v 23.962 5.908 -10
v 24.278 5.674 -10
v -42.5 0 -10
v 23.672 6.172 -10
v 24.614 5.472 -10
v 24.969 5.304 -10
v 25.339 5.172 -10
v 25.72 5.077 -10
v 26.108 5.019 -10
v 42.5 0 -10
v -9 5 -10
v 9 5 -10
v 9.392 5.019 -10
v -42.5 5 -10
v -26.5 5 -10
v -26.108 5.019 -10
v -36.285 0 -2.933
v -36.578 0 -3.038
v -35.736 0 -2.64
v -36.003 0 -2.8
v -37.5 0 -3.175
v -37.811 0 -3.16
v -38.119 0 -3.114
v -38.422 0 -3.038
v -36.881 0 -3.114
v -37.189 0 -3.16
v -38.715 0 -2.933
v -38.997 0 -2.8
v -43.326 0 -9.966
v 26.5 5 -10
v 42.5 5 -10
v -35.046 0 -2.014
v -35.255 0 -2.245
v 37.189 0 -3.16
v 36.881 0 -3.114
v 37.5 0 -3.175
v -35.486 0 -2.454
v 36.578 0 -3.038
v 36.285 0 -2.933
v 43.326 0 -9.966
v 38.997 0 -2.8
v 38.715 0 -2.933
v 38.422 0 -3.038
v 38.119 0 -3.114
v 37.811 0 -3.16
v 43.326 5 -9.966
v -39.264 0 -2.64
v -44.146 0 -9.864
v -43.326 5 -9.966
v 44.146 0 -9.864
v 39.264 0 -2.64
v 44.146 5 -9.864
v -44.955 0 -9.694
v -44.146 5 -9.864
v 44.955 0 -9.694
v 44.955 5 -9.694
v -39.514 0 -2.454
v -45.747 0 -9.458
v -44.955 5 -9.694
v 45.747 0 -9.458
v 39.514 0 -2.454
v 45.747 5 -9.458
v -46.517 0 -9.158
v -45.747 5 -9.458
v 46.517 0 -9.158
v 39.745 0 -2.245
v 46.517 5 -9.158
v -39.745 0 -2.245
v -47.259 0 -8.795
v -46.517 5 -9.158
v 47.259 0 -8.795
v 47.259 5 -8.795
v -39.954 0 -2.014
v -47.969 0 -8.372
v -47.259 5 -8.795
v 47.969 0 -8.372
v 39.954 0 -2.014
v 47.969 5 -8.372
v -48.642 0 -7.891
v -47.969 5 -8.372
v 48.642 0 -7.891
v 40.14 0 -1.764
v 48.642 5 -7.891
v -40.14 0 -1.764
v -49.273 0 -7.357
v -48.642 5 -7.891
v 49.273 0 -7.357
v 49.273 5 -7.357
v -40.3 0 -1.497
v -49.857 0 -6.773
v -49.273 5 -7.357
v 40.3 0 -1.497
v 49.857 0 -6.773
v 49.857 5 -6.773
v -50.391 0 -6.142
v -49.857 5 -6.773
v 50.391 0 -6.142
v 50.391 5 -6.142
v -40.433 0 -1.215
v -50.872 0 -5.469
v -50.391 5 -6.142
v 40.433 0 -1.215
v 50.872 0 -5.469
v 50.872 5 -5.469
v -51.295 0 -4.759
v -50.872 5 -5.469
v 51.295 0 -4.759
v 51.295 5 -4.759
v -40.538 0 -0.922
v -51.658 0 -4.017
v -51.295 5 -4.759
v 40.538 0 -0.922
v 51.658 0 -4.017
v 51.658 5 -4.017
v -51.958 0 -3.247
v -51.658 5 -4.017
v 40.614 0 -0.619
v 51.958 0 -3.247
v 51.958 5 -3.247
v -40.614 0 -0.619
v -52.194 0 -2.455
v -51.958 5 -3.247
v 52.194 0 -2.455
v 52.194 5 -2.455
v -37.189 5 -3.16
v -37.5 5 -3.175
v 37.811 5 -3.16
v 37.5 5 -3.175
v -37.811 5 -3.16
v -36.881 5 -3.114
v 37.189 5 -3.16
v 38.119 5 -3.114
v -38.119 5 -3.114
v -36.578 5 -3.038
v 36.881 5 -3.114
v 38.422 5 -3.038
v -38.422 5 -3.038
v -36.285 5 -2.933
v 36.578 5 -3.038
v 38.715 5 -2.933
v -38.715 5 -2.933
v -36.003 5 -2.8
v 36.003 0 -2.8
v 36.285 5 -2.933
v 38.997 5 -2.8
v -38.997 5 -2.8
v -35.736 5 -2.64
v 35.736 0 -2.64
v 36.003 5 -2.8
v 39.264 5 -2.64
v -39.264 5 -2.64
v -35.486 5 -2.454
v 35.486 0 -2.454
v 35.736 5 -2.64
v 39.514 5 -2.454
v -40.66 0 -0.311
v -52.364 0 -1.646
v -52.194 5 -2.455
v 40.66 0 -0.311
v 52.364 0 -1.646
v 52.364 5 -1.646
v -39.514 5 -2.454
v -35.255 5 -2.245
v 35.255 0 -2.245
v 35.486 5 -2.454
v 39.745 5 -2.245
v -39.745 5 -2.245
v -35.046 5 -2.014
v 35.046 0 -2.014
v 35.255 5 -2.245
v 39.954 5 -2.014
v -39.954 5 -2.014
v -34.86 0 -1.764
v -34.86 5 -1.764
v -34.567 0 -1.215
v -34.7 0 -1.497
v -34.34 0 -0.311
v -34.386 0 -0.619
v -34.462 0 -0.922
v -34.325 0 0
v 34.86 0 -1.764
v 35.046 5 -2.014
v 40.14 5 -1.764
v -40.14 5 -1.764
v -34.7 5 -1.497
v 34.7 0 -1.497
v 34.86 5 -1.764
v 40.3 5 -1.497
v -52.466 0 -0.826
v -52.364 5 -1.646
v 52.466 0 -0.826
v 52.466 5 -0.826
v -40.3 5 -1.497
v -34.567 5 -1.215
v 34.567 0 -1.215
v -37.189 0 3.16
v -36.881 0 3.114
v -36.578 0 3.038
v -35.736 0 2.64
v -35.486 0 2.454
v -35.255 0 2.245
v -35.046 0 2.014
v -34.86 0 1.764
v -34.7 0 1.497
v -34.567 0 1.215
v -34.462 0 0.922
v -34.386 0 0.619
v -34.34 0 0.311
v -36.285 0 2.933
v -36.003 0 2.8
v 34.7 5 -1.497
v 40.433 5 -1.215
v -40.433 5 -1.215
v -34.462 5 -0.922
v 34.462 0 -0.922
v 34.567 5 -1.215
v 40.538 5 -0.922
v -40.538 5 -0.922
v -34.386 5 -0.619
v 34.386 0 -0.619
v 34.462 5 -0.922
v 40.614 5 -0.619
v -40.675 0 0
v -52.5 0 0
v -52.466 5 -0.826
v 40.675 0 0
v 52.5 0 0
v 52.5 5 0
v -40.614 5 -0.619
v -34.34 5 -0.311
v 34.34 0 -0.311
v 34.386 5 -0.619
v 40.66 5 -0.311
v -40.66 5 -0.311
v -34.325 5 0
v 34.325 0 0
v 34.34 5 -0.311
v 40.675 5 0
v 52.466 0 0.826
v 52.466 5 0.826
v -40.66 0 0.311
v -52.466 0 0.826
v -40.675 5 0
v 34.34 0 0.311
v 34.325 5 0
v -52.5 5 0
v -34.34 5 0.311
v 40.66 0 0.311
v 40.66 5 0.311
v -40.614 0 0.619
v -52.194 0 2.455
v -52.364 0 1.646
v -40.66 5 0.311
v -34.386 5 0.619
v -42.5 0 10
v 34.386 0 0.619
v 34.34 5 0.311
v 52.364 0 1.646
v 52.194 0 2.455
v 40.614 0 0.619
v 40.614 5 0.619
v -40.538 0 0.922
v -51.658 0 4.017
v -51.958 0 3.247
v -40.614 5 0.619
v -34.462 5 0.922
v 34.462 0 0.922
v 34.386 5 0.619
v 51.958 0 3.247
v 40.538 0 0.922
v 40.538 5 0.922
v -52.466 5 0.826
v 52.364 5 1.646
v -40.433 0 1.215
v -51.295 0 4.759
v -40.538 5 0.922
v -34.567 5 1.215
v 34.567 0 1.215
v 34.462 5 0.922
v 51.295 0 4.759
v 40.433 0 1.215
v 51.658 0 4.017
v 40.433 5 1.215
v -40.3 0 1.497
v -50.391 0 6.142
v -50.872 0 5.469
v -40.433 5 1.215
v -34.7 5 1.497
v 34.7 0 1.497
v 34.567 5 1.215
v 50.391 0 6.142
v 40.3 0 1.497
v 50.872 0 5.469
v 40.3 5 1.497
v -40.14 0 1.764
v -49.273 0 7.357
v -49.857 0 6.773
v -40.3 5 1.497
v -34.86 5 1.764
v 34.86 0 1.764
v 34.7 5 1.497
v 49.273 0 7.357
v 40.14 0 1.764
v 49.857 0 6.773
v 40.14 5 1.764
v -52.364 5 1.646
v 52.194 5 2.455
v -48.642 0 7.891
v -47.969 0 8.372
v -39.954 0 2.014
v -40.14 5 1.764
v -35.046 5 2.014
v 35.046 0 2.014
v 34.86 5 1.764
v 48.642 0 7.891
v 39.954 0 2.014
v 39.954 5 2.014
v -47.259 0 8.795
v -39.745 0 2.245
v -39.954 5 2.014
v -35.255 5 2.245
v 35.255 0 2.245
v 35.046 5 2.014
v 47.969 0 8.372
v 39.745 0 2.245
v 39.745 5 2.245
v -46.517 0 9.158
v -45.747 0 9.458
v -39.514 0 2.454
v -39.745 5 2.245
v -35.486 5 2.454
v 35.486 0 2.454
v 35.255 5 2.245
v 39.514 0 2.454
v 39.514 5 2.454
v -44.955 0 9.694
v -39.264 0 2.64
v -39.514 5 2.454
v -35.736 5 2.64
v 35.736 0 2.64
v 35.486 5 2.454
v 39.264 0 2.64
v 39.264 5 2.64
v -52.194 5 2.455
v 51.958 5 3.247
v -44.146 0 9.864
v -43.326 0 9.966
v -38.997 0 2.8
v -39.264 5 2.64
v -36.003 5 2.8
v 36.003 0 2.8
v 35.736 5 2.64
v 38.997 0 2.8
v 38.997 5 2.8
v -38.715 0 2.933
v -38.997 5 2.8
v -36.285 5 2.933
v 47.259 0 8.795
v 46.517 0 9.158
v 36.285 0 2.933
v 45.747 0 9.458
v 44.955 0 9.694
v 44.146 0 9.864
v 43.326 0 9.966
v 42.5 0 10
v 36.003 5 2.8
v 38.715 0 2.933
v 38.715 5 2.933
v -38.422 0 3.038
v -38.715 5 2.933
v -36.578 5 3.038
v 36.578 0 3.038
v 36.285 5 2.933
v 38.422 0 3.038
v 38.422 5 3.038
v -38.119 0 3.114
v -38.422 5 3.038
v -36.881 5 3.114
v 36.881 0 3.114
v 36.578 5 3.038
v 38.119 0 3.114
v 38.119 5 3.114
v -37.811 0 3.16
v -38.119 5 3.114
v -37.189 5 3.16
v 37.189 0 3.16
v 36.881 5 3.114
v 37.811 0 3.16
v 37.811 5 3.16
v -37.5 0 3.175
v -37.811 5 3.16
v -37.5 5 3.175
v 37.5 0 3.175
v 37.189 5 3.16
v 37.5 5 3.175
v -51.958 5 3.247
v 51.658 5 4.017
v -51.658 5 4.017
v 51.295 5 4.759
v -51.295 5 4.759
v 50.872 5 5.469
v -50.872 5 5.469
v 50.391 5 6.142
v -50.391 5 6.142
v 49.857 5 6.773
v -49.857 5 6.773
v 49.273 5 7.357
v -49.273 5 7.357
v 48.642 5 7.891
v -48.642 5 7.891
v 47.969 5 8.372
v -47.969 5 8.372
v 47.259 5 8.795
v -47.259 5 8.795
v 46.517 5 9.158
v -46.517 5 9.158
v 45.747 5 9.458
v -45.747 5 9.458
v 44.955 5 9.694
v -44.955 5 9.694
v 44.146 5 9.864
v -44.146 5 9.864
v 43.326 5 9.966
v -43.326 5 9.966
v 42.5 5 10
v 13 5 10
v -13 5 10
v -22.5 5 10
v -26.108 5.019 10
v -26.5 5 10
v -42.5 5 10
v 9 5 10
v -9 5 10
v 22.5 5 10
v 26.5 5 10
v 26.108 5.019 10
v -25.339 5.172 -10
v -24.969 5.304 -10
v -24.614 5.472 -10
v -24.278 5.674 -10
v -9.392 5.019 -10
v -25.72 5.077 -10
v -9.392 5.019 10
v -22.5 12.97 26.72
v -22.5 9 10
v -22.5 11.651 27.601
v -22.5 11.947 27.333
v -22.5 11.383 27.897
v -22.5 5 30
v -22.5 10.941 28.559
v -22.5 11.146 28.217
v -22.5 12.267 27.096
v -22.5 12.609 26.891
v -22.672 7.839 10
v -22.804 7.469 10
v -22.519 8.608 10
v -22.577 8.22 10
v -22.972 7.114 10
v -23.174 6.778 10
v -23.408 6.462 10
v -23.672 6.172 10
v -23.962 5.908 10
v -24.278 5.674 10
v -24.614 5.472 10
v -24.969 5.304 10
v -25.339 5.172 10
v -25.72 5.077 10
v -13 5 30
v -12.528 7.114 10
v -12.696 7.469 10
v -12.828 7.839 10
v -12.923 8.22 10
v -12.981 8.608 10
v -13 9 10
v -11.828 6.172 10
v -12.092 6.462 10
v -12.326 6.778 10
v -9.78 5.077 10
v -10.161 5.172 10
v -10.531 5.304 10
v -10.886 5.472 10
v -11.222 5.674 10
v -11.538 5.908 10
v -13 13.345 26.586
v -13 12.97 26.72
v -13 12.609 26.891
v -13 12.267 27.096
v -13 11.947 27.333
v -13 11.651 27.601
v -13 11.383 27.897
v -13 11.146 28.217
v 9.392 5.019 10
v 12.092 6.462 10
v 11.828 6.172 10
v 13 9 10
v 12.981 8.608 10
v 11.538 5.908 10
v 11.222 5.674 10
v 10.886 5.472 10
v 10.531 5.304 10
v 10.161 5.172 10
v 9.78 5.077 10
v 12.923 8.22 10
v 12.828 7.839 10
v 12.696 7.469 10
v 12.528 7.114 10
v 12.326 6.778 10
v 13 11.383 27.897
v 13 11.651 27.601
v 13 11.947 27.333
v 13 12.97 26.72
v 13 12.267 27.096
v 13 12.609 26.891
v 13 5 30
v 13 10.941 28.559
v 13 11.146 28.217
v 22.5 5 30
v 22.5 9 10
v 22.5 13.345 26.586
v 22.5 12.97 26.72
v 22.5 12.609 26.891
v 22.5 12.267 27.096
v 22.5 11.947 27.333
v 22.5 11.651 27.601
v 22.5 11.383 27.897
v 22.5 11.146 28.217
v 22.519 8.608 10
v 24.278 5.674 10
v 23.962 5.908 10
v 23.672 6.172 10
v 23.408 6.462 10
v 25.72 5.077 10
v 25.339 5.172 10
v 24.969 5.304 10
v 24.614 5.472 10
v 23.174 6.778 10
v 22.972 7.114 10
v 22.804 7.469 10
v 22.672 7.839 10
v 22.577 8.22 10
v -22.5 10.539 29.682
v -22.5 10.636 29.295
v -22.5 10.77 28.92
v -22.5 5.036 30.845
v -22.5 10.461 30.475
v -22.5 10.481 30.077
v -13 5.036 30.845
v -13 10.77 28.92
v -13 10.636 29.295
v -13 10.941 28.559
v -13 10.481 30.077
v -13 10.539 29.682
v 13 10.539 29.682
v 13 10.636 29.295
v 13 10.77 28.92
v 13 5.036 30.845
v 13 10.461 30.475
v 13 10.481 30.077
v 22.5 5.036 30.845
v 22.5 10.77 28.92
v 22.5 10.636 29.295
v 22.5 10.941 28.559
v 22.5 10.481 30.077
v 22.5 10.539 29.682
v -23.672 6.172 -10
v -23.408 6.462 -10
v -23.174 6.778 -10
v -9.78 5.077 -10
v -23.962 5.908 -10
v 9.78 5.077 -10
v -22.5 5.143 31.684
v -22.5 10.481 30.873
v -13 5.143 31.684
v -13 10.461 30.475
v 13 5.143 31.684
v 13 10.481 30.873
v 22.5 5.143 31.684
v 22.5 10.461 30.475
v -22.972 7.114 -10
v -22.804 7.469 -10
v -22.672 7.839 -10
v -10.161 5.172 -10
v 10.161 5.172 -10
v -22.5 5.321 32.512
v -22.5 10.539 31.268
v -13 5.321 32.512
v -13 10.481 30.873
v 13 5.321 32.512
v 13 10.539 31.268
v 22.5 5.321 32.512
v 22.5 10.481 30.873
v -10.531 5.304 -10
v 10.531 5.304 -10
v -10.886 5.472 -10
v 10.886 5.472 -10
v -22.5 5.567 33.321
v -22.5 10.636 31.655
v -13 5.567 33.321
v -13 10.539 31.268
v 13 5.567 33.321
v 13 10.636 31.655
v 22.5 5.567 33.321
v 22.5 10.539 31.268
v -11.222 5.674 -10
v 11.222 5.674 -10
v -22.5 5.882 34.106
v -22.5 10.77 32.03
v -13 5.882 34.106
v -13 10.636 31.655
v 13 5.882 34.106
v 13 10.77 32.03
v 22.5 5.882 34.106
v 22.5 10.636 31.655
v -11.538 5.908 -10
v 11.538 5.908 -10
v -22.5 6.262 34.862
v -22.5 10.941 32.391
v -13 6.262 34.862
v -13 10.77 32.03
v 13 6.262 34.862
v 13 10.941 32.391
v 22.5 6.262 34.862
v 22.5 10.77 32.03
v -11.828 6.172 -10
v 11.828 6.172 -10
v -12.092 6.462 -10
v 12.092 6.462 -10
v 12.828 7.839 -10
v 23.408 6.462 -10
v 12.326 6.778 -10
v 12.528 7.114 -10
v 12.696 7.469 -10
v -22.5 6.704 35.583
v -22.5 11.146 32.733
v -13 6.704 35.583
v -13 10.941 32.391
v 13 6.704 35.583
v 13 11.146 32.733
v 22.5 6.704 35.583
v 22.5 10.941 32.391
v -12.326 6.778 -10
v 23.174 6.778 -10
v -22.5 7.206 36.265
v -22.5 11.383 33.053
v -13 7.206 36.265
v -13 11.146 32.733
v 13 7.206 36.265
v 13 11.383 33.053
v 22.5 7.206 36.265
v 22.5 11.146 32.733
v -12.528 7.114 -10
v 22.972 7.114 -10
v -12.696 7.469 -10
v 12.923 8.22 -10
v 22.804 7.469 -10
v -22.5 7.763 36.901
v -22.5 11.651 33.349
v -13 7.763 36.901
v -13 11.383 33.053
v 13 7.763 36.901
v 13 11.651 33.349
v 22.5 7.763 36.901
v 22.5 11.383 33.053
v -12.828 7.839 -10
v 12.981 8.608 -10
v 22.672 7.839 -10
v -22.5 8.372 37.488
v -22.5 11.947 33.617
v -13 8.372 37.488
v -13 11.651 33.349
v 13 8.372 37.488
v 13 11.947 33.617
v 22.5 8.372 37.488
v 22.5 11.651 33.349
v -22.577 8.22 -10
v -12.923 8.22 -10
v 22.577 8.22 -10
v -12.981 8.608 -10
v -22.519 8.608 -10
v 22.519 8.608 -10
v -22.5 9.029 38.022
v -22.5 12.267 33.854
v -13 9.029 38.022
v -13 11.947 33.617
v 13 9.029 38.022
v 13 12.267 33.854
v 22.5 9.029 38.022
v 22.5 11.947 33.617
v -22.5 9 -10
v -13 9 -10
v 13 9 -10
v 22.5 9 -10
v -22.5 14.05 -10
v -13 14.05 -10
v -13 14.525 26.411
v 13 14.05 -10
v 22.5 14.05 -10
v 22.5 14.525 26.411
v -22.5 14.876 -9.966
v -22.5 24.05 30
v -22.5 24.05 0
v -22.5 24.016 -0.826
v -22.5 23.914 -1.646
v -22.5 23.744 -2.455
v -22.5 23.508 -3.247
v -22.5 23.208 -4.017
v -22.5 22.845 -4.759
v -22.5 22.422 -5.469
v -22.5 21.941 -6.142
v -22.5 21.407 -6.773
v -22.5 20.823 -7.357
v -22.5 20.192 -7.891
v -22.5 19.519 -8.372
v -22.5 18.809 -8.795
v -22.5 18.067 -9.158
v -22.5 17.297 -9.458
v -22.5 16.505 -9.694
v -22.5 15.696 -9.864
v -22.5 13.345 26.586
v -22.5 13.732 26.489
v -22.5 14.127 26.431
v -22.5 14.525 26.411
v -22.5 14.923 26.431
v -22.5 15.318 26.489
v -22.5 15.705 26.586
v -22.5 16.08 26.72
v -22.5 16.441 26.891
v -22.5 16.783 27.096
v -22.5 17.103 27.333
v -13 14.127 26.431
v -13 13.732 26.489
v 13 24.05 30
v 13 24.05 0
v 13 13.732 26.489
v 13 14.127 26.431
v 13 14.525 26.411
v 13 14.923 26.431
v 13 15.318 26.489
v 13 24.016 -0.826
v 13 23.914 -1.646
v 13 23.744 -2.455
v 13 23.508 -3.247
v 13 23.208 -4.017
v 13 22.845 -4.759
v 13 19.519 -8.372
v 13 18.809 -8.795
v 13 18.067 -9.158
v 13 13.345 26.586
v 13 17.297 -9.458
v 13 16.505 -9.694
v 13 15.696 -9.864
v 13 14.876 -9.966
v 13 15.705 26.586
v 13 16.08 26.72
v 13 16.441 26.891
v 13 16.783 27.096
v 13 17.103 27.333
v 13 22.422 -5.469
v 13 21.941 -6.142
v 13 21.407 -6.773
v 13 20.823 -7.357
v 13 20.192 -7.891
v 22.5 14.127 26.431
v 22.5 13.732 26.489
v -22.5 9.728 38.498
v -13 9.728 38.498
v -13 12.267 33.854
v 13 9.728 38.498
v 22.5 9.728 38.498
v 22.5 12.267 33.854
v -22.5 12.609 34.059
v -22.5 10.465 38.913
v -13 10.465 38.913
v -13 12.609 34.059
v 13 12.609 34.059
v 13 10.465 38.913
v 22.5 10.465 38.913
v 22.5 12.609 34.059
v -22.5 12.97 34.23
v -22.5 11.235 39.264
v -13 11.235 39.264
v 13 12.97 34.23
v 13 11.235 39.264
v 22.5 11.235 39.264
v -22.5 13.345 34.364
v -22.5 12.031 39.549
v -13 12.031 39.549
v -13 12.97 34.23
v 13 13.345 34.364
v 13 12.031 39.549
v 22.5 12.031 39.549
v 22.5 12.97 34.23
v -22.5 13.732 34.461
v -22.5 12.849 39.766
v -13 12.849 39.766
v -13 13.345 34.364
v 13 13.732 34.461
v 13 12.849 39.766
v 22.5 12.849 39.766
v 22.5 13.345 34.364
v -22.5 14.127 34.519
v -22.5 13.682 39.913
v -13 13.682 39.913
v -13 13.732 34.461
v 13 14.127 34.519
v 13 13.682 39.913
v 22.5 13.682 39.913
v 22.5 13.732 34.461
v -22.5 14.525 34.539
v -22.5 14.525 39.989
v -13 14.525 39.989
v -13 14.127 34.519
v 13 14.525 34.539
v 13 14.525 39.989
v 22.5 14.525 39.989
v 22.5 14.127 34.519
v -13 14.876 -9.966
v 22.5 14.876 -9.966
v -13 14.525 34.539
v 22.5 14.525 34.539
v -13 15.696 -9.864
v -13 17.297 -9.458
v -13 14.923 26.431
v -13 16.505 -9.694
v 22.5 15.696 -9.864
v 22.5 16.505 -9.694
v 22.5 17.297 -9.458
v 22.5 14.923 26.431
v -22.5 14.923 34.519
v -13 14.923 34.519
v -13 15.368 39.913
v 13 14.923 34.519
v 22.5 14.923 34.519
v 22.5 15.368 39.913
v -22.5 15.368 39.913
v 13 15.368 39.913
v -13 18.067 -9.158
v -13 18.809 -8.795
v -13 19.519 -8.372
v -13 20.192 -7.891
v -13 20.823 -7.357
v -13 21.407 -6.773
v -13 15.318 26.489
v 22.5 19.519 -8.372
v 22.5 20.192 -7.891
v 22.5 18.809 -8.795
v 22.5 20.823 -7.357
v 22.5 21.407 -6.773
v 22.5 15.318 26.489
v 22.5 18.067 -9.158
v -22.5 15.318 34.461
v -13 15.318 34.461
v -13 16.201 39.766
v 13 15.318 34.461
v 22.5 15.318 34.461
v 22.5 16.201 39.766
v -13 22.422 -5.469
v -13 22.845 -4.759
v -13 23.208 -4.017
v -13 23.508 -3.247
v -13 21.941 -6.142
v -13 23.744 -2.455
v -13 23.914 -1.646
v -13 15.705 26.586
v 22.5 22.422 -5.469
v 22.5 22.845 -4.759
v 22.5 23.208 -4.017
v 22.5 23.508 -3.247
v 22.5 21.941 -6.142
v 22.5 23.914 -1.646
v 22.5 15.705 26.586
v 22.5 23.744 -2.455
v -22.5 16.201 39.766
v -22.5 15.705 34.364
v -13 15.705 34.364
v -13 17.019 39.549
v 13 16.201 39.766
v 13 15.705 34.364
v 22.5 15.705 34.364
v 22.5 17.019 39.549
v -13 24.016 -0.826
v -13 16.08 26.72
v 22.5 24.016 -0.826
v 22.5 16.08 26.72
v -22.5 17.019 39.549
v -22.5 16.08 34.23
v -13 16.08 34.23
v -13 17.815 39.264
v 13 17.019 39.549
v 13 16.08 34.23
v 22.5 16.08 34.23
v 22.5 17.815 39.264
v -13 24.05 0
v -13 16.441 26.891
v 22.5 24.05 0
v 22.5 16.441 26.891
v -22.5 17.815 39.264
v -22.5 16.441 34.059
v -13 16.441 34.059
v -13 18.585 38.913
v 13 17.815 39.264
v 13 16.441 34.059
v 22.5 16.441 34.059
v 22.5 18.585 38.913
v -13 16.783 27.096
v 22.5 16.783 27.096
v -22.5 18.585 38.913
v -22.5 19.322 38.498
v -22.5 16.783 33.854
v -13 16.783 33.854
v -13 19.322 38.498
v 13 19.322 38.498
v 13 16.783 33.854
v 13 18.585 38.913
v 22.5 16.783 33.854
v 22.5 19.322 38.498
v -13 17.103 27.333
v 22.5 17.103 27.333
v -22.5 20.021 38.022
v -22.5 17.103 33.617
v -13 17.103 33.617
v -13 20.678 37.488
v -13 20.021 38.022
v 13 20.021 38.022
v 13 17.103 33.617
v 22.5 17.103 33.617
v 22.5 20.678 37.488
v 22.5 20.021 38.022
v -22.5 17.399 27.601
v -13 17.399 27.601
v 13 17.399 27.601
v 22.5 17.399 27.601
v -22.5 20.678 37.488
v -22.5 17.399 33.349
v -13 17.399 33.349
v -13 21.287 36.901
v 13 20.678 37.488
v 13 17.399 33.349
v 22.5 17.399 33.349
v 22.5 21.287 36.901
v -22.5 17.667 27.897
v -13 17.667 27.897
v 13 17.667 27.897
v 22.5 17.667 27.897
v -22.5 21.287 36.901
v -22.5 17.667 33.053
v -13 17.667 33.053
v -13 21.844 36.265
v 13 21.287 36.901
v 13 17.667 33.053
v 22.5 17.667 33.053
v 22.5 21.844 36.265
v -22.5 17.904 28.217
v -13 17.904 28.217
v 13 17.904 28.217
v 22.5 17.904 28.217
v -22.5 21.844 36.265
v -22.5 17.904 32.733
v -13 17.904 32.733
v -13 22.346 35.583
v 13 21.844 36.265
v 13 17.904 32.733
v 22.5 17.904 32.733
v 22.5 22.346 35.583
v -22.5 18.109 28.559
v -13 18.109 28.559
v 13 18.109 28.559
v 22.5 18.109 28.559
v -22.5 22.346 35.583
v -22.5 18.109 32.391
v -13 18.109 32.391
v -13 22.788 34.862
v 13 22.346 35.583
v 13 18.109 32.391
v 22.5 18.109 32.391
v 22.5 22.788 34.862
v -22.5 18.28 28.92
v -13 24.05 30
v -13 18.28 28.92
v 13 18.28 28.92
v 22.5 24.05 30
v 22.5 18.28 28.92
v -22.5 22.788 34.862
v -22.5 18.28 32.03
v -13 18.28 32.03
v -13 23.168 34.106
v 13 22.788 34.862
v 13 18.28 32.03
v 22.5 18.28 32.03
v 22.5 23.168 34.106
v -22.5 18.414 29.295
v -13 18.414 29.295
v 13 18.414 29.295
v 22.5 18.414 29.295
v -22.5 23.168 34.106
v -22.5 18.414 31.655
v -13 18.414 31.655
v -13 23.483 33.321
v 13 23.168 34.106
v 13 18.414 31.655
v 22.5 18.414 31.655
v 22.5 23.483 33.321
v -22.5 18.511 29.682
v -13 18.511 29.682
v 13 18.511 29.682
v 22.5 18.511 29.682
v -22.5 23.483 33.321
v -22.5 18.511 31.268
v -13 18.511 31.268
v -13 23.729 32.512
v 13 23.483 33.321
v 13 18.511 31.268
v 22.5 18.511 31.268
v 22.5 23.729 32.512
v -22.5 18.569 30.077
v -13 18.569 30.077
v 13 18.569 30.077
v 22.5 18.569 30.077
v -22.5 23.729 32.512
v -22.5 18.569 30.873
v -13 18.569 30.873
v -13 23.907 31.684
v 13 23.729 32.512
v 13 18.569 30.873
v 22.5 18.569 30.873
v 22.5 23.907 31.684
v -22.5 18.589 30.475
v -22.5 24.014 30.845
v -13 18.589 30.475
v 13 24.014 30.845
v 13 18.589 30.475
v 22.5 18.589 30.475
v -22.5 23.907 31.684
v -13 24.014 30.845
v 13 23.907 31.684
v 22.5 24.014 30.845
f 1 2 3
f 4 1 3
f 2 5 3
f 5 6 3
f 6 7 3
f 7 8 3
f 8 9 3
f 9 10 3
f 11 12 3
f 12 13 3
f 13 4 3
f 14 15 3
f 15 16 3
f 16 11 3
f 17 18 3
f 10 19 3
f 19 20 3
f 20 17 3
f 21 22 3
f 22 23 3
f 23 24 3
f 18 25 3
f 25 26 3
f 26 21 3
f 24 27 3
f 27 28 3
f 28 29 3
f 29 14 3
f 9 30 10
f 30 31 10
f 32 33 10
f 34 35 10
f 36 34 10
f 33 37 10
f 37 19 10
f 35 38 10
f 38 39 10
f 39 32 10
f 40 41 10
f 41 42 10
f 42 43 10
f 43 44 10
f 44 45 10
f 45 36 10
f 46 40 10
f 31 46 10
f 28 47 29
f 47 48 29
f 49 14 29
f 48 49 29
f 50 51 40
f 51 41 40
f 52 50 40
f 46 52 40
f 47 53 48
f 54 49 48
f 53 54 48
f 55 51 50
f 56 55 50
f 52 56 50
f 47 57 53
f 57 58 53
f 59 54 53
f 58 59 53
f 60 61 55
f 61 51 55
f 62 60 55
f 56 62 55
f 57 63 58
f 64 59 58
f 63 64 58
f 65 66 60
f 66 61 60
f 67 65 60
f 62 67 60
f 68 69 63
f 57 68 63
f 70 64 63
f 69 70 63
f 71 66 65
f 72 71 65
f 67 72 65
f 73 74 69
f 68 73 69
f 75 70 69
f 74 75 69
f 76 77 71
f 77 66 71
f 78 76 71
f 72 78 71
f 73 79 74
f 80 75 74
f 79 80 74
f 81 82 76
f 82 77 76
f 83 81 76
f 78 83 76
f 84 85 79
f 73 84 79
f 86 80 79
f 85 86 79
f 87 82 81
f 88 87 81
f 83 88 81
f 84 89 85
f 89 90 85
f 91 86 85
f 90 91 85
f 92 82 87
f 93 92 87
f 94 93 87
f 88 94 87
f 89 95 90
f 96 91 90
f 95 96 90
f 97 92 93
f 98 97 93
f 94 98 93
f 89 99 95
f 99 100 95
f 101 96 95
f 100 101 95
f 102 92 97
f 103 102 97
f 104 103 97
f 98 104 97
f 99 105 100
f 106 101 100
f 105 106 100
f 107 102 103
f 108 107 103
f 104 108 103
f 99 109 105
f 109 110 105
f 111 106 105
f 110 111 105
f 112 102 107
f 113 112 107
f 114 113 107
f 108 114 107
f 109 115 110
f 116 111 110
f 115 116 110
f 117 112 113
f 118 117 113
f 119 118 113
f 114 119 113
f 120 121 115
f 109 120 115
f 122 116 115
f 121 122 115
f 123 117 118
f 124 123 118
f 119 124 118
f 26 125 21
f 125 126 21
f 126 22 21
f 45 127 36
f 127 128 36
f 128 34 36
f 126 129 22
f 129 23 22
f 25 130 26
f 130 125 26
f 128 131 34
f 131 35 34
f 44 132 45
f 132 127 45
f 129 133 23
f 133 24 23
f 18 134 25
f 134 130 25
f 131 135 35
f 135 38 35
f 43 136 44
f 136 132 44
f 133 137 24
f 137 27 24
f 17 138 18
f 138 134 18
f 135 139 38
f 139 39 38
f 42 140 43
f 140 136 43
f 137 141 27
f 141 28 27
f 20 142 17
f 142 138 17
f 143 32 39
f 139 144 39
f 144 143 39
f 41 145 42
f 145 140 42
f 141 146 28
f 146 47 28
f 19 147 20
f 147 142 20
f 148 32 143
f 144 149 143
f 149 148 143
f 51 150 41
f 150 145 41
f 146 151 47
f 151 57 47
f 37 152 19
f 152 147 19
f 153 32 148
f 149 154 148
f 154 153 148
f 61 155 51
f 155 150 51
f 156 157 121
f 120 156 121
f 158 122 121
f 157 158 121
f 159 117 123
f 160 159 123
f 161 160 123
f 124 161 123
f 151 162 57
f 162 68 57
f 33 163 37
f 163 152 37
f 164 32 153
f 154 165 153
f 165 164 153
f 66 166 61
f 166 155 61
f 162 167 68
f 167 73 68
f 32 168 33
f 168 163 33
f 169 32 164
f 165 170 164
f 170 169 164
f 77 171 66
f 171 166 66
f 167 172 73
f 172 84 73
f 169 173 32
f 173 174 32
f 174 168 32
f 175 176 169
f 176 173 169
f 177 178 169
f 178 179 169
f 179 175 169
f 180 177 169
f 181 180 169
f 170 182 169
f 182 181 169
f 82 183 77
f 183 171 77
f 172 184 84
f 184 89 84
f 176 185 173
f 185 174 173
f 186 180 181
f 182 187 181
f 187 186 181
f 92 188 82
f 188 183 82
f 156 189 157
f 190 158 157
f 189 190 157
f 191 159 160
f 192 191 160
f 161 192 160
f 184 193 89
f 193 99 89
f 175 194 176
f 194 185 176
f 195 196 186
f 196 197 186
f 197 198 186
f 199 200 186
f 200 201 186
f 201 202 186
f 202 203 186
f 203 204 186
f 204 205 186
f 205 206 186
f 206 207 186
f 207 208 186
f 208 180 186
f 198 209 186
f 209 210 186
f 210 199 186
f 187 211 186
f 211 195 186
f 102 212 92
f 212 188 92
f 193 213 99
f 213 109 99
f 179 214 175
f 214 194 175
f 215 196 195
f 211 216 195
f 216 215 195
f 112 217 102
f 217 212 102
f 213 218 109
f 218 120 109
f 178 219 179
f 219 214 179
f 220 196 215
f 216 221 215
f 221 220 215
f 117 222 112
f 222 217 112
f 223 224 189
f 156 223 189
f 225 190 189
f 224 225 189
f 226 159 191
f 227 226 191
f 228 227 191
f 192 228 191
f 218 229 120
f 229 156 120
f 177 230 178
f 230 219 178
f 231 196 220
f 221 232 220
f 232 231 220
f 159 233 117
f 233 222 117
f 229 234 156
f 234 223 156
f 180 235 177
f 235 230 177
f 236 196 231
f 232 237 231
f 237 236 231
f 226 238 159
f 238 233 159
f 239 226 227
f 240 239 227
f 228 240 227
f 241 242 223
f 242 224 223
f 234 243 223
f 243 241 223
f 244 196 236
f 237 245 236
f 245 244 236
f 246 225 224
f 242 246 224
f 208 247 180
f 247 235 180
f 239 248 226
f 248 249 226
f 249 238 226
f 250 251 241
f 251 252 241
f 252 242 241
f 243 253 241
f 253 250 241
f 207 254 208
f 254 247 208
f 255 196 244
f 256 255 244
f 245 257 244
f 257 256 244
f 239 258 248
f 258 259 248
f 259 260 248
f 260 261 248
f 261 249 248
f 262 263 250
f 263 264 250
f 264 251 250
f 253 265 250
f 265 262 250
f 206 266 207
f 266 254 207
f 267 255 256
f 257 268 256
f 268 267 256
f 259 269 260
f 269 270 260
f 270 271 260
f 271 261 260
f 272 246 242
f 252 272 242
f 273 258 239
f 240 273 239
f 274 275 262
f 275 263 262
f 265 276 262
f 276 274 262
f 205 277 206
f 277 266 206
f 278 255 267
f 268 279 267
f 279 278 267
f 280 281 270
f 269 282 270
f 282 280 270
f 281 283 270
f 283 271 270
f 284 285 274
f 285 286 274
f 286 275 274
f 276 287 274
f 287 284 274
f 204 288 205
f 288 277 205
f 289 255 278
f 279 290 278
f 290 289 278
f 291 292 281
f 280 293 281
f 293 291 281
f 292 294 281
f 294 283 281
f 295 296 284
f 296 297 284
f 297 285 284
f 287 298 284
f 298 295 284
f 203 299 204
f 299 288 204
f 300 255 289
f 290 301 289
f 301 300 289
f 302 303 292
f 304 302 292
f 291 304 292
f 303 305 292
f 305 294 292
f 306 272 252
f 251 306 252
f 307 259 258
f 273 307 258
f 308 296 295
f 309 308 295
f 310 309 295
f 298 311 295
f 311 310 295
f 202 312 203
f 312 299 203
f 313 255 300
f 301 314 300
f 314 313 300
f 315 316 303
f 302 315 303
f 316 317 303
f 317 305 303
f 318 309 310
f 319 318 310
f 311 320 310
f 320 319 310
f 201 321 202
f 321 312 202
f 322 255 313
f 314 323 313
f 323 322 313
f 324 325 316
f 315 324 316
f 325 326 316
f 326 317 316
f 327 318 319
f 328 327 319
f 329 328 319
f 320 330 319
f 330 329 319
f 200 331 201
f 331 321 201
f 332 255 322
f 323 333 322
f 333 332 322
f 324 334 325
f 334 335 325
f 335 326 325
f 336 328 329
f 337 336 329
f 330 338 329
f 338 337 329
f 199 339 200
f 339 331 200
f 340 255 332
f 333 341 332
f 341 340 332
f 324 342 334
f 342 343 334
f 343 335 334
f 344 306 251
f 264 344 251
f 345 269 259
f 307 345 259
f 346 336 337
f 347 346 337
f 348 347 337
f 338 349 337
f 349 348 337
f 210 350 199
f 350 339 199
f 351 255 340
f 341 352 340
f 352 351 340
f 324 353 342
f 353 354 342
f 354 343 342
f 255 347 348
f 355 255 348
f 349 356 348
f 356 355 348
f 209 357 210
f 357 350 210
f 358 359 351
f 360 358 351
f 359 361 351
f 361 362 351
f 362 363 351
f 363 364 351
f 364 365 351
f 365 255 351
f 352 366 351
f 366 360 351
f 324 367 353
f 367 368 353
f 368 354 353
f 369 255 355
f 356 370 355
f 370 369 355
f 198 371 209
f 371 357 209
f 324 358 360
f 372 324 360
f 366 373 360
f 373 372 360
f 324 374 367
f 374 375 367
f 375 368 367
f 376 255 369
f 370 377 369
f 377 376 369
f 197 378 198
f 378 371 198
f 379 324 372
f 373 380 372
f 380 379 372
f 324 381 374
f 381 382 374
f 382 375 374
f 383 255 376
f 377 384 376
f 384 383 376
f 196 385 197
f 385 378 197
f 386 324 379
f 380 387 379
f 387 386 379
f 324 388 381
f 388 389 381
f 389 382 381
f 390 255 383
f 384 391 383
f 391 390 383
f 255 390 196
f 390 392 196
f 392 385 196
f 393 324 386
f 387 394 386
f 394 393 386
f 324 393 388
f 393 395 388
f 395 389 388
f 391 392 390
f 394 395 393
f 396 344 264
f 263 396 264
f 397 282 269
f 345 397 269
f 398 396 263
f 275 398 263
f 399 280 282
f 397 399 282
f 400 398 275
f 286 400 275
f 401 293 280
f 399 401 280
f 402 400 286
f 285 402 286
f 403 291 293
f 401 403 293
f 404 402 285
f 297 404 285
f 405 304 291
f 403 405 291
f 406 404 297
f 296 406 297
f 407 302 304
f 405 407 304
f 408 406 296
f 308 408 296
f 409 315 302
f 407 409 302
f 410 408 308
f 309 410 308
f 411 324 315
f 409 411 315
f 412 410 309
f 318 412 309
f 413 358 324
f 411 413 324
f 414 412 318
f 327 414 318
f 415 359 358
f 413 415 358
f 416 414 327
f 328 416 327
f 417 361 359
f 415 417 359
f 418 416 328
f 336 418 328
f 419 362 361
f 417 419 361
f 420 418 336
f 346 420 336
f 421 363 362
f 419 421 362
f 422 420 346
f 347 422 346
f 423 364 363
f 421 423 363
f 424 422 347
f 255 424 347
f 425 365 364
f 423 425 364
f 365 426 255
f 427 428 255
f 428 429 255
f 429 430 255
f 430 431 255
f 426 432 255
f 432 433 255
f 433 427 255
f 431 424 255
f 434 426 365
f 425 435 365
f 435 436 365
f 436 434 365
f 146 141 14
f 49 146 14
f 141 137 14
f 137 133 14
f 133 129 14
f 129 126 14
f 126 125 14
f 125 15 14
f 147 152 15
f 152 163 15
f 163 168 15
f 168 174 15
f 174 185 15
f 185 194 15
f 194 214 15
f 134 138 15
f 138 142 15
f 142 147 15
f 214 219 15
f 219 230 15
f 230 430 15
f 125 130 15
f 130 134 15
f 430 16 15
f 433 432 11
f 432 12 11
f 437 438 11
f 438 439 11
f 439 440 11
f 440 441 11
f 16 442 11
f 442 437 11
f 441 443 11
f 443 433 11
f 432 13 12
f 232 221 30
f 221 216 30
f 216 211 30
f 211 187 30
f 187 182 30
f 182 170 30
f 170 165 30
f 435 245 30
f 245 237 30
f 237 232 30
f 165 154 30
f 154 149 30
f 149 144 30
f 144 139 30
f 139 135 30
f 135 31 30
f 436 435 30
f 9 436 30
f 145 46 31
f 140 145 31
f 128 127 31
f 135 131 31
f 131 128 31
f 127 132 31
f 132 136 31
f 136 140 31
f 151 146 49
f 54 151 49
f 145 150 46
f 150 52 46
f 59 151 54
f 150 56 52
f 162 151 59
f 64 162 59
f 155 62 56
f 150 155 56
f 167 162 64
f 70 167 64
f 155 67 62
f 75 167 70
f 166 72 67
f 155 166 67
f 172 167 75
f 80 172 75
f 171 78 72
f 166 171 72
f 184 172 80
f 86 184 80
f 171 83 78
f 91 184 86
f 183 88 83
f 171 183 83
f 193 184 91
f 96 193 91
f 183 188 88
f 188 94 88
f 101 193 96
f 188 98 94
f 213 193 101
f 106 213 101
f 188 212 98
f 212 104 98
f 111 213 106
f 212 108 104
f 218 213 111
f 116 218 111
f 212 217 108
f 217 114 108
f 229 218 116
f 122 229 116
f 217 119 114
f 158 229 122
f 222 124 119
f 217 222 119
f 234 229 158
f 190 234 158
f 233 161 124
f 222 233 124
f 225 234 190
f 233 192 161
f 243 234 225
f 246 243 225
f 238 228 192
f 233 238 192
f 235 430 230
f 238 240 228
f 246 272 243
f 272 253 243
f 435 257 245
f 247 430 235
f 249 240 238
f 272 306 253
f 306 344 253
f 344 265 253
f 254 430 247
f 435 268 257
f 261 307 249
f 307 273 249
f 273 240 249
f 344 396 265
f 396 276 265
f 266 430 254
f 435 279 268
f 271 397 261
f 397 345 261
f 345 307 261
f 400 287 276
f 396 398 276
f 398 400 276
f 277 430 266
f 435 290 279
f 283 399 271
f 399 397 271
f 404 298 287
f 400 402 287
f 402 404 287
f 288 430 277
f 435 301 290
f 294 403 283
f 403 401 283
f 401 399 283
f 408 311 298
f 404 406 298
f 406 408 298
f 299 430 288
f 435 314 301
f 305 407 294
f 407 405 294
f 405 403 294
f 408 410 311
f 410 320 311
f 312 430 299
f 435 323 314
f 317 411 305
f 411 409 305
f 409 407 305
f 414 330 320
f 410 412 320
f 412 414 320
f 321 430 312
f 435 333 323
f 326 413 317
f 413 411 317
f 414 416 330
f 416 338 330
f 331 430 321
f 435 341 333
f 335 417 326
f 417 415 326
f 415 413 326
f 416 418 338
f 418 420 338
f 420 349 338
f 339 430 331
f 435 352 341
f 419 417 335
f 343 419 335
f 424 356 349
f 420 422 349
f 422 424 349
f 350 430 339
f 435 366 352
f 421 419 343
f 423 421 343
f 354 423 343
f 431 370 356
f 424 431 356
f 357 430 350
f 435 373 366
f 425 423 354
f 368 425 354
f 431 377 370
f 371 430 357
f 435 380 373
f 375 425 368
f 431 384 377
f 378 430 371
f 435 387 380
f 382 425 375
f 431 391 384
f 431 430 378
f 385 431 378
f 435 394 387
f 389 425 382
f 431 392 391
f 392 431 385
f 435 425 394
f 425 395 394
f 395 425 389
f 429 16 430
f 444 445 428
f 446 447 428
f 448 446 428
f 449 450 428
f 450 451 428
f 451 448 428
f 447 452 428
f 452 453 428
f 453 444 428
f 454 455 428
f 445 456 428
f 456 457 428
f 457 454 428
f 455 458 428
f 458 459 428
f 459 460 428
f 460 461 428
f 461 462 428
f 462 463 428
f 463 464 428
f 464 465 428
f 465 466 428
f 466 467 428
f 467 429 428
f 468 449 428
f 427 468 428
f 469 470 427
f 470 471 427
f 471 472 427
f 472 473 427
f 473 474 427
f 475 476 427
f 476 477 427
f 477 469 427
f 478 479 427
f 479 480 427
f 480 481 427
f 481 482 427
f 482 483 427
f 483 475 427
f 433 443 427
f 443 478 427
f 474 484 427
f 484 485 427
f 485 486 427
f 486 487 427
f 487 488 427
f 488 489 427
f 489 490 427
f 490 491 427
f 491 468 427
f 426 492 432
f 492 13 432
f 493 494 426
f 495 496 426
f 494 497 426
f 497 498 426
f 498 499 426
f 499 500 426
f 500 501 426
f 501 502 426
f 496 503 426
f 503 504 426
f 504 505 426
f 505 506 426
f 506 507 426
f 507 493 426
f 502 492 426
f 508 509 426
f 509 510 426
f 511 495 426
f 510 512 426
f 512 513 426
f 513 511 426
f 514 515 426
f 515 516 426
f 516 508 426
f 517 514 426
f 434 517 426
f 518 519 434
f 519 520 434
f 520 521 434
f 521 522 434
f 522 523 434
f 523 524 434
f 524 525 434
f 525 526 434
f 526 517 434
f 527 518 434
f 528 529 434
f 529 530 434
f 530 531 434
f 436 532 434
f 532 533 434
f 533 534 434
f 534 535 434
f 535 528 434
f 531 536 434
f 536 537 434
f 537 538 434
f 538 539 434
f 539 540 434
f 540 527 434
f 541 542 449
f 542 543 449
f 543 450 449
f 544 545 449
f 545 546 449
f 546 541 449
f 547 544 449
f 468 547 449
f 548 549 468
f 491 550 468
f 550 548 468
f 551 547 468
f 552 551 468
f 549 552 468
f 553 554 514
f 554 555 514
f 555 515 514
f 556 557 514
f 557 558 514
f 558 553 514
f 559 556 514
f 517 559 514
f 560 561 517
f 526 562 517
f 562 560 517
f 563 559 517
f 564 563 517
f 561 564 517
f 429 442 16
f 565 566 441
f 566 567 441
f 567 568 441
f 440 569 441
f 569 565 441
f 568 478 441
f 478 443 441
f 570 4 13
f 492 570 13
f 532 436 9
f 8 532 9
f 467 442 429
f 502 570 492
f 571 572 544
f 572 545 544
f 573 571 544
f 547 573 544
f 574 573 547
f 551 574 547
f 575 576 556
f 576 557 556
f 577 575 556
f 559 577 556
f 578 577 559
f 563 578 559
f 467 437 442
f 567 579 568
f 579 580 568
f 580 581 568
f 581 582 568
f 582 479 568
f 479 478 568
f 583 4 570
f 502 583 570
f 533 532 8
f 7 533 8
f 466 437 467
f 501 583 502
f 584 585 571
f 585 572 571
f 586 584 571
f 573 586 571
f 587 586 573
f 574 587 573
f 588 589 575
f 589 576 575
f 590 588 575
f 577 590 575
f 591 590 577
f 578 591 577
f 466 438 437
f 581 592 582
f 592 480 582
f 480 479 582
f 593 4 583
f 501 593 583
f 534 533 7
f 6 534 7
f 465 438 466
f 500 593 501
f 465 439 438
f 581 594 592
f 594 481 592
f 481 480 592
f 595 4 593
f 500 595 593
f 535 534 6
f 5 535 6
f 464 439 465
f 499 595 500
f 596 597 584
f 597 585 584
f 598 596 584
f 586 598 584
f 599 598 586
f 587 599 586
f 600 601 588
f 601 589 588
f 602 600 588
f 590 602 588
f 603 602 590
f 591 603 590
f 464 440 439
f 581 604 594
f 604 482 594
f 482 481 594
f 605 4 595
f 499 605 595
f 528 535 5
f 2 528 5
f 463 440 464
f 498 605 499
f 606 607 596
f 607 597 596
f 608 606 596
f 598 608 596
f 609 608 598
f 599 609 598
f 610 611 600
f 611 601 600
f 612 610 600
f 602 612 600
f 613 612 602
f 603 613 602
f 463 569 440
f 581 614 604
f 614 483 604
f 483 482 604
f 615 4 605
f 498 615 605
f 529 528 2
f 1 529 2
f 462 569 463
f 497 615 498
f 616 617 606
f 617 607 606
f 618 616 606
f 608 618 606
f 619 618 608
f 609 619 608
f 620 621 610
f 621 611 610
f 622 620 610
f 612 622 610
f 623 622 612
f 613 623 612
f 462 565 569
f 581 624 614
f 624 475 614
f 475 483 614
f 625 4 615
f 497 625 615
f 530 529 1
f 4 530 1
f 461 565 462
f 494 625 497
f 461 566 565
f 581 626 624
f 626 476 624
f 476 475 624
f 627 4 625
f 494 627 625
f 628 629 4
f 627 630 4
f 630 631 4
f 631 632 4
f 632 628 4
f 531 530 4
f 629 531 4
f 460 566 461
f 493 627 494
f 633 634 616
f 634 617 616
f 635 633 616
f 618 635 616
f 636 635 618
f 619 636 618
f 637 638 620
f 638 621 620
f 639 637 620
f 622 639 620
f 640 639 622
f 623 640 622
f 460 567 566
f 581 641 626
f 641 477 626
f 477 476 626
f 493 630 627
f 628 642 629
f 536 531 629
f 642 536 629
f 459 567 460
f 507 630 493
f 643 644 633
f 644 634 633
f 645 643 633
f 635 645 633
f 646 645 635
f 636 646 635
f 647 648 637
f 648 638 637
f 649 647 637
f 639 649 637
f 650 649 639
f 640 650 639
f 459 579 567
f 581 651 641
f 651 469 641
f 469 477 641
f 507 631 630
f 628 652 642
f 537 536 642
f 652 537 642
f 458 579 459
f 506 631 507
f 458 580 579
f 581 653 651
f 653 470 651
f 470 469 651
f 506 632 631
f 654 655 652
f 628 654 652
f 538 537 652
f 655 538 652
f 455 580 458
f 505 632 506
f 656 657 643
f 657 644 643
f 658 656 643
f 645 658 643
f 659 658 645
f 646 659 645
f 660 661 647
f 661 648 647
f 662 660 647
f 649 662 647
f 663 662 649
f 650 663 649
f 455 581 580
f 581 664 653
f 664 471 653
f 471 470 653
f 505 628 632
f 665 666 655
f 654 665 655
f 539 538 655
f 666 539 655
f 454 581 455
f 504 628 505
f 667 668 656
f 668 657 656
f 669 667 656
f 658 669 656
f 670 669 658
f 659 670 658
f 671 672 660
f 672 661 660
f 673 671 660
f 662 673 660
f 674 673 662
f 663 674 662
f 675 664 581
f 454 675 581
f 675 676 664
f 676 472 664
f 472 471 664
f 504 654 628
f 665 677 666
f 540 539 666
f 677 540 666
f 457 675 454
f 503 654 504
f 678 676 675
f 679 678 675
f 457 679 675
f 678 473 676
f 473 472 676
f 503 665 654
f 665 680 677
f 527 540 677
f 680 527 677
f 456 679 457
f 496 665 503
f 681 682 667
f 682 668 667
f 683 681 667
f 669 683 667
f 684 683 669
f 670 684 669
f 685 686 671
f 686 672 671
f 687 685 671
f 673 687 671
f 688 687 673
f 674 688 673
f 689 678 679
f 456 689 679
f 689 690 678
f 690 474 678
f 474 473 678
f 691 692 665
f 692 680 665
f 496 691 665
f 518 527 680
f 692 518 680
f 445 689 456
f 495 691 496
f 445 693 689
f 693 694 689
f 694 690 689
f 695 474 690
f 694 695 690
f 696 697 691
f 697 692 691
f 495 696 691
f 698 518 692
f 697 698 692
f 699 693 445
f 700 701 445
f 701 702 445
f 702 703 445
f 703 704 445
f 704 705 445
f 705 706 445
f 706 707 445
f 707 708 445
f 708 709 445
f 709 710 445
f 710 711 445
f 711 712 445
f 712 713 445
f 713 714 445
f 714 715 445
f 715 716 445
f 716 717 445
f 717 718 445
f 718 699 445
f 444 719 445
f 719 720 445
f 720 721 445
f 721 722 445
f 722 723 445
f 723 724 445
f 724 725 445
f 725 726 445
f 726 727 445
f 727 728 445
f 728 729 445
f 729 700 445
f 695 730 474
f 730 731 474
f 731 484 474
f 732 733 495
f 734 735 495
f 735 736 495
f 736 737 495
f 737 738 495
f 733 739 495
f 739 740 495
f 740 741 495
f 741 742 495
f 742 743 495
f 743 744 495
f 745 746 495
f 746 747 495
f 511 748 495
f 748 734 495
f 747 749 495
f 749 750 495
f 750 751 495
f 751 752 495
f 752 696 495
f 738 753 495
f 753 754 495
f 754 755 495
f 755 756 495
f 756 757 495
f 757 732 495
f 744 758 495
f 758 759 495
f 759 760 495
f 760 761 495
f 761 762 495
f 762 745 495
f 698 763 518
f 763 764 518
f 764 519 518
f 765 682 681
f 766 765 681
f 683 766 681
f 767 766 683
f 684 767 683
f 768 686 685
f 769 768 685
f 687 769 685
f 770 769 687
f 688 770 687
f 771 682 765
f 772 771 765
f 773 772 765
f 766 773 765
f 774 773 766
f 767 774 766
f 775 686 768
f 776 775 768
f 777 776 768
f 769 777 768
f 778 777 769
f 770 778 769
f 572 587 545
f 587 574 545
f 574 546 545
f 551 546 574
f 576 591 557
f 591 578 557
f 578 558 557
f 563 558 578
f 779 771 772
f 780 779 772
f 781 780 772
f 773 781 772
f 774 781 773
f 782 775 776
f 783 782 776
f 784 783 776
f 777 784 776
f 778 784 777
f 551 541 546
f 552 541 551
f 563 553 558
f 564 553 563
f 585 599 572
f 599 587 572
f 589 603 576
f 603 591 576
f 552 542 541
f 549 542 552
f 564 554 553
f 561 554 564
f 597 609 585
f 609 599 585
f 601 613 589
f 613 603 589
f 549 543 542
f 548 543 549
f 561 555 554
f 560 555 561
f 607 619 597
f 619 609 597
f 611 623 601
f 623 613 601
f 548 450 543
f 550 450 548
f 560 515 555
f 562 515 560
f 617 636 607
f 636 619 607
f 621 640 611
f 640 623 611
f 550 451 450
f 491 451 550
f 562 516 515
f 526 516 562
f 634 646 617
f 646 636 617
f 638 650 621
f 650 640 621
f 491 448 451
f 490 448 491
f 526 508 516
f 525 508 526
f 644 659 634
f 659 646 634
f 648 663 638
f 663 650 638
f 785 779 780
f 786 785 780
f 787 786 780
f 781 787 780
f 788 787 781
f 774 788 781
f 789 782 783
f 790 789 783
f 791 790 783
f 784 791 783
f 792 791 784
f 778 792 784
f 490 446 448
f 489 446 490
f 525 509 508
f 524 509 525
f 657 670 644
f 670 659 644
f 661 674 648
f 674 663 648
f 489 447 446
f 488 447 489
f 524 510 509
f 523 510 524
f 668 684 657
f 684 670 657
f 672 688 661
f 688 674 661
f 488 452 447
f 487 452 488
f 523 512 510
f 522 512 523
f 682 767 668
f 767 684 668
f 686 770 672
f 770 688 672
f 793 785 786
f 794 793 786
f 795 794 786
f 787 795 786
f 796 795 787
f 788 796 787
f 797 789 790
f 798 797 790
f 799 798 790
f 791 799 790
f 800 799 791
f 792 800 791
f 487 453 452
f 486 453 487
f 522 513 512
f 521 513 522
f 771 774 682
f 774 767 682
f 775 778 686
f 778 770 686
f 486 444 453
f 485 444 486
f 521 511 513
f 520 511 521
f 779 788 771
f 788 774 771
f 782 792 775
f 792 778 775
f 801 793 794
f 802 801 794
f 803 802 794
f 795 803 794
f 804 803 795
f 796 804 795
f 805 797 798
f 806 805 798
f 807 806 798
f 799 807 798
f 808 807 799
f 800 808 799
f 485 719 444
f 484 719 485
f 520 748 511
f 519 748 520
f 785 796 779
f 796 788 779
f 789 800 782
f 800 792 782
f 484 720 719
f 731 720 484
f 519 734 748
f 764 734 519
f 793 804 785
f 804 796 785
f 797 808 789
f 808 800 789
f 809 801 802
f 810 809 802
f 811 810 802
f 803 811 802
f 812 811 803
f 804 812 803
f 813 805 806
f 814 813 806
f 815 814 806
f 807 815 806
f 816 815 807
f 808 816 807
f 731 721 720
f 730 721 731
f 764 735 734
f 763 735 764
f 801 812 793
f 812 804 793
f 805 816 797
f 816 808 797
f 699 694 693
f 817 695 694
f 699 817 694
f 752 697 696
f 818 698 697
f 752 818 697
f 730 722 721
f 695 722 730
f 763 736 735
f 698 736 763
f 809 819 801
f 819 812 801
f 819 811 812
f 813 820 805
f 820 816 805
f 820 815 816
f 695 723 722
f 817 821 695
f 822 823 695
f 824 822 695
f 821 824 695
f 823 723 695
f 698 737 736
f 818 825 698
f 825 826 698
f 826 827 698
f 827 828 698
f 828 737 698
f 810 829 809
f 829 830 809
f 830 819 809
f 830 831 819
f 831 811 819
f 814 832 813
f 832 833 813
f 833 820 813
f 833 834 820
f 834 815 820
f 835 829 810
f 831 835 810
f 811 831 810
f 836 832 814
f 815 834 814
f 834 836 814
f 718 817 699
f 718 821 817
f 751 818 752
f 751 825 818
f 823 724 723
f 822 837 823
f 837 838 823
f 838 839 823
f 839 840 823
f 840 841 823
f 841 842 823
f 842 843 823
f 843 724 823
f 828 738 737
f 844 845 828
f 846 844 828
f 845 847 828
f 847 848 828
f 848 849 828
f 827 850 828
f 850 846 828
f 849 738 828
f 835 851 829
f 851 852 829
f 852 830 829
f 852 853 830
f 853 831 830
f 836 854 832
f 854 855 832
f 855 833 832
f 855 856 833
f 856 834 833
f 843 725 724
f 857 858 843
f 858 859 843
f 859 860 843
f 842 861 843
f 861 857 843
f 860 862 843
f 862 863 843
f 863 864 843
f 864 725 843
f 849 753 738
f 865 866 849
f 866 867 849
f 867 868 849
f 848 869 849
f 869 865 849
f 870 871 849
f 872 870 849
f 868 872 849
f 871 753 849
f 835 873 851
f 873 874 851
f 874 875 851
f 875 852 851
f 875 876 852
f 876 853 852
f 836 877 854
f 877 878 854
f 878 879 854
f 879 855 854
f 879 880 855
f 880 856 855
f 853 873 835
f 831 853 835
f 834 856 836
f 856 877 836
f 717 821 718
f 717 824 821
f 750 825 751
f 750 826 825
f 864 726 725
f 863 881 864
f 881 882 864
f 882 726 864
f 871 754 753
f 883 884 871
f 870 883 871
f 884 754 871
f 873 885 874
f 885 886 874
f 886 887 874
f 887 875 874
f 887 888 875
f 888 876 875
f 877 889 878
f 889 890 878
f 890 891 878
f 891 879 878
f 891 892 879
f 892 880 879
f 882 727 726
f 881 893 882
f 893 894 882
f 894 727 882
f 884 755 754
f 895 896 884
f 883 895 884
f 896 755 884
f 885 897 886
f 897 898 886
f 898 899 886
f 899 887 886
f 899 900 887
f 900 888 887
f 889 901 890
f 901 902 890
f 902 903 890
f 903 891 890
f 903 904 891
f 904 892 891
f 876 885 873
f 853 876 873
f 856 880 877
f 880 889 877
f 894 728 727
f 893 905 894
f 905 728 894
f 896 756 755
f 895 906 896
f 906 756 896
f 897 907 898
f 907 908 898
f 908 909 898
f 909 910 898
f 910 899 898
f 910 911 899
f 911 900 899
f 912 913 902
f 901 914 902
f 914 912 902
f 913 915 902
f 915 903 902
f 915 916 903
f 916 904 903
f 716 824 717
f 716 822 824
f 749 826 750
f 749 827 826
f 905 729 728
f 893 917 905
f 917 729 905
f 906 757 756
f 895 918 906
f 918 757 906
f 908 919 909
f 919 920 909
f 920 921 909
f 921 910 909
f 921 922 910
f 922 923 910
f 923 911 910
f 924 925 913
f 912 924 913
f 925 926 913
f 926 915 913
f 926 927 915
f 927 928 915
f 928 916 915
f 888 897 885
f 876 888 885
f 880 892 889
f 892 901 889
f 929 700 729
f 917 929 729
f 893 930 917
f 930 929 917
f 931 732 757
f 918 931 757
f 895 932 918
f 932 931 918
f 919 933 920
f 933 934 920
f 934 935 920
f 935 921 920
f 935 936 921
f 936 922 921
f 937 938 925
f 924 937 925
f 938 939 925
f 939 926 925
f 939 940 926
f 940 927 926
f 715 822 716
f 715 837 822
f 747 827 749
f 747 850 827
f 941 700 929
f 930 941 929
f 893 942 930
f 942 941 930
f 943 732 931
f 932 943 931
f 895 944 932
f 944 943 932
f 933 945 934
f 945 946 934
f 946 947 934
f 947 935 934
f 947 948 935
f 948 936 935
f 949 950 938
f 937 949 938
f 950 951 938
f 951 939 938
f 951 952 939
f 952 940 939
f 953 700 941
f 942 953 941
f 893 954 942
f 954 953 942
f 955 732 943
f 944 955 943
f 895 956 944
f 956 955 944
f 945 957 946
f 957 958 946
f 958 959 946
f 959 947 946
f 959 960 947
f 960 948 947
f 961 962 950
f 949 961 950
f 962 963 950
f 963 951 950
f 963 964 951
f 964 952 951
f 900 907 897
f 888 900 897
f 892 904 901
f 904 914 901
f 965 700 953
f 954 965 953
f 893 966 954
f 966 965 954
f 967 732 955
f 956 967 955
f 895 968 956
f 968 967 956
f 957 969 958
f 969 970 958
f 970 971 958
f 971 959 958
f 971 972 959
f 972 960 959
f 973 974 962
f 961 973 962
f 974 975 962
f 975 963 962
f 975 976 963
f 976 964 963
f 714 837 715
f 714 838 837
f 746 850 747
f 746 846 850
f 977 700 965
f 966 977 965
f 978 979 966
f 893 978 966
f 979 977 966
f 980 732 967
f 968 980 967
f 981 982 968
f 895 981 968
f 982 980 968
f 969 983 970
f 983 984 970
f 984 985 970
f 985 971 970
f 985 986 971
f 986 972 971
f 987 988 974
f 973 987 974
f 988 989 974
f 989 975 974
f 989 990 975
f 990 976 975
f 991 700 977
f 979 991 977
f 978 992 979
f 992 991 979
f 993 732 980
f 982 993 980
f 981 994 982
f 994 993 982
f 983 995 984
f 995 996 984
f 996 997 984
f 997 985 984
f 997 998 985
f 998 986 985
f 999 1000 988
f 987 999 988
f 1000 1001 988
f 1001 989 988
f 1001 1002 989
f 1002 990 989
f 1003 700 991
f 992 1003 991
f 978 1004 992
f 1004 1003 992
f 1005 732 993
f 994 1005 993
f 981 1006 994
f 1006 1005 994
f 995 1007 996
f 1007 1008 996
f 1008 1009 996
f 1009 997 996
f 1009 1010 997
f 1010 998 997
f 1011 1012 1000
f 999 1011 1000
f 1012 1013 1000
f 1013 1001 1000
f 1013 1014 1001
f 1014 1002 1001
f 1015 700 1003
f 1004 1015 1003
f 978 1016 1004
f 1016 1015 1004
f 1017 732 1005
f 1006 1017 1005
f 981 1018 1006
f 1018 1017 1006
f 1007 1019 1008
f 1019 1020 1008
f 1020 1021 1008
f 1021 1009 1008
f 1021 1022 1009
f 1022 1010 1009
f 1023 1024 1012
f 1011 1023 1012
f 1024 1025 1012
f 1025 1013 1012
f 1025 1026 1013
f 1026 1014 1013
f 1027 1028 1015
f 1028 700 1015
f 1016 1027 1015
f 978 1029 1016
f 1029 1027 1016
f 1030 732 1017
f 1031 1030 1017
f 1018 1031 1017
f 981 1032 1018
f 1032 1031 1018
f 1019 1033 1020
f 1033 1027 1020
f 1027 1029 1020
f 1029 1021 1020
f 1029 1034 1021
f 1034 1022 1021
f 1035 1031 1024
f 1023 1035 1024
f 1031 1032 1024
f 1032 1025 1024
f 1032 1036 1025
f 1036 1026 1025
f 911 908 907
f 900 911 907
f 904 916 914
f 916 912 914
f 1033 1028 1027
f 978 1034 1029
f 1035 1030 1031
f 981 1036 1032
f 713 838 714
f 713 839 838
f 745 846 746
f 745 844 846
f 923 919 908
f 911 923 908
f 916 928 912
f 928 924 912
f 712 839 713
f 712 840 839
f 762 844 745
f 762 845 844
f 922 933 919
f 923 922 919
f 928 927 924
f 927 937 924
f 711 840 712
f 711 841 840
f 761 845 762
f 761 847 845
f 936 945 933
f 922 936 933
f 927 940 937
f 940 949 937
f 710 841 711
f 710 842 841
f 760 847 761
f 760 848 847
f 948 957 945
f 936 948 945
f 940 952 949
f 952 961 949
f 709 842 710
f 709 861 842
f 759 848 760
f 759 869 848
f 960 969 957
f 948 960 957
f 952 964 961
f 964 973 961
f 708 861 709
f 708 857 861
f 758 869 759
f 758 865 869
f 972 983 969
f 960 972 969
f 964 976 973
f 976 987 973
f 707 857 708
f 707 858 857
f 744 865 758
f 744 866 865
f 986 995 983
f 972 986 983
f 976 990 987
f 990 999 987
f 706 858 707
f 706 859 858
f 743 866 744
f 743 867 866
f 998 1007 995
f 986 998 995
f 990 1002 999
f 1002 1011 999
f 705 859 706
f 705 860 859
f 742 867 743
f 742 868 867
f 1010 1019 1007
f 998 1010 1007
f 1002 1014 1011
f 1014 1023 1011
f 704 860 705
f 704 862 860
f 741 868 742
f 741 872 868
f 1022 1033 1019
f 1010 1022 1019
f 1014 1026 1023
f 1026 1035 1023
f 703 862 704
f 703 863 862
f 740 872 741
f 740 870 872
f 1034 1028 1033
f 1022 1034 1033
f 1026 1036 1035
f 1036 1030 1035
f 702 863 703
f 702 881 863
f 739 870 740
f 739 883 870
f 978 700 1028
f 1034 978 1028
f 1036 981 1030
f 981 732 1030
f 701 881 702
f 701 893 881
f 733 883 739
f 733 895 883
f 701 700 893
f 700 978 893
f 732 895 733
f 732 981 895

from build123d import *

# Parameters (mm, degrees)
SKETCH1_W                   = 45
SKETCH1_H                   = 20
BOSS_EXTRUDE1_DEPTH         = 5
SKETCH2_W                   = 9.5
SKETCH2_H                   = 20
BOSS_EXTRUDE2_DEPTH         = 19.05
SKETCH3_W                   = 9.5
SKETCH3_H                   = 19.05
BOSS_EXTRUDE3_DEPTH         = 30
SKETCH4_R                   = 4.064
CUT_EXTRUDE1_DEPTH          = 65.833652527
SKETCH8_W                   = 30
SKETCH8_H                   = 20
BOSS_EXTRUDE4_DEPTH         = 5
F_1_4_0_25_DIAMETER_HOLE1_D = 6.35
FILLET1_R                   = 10
FILLET2_R                   = 4


with BuildPart() as part:
    # Sketch1 → Boss-Extrude1 (new body)
    with BuildSketch(Plane(origin=(0, 0, 0), x_dir=(1, 0, 0), z_dir=(0, 1, 0))):
        Rectangle(SKETCH1_W, SKETCH1_H)
    extrude(amount=BOSS_EXTRUDE1_DEPTH)

    # Sketch2 → Boss-Extrude2 (add)
    with BuildSketch(Plane(origin=(0, 5, 0), x_dir=(1, 0, 0), z_dir=(0, 1, 0))):
        with Locations((17.75, 0)):
            Rectangle(SKETCH2_W, SKETCH2_H)
        with Locations((-17.75, 0)):
            Rectangle(SKETCH2_W, SKETCH2_H)
    extrude(amount=BOSS_EXTRUDE2_DEPTH)

    # Sketch3 → Boss-Extrude3 (add)
    with BuildSketch(Plane.XY.offset(10)):
        with Locations((-17.75, 14.525)):
            Rectangle(SKETCH3_W, SKETCH3_H)
        with Locations((17.75, 14.525)):
            Rectangle(SKETCH3_W, SKETCH3_H)
    extrude(amount=BOSS_EXTRUDE3_DEPTH)

    # Sketch4 → Cut-Extrude1 (cut, through all)
    with BuildSketch(Plane(origin=(22.5, 0, 0), x_dir=(0, 0, -1), z_dir=(1, 0, 0))):
        with Locations((-30.475, 14.525)):
            Circle(SKETCH4_R)
    extrude(amount=-CUT_EXTRUDE1_DEPTH, mode=Mode.SUBTRACT)

    # Sketch8 → Boss-Extrude4 (add)
    with BuildSketch(Plane(origin=(0, 5, 0), x_dir=(1, 0, 0), z_dir=(0, 1, 0))):
        with Locations((37.5, 0)):
            Rectangle(SKETCH8_W, SKETCH8_H)
        with Locations((-37.5, 0)):
            Rectangle(SKETCH8_W, SKETCH8_H)
    extrude(amount=-BOSS_EXTRUDE4_DEPTH)

    # 1/4 (0.25) Diameter Hole1 (through all)
    with Locations(Plane(origin=(0, 5, 0), x_dir=(1, 0, 0), z_dir=(0, 1, 0))):
        with Locations((37.5, 0), (-37.5, 0)):
            Hole(F_1_4_0_25_DIAMETER_HOLE1_D / 2)

    # Fillet1
    # the kernel refuses this fillet: 10 mm, written as the material it takes off along each edge
    with BuildSketch(Plane(origin=(-47.5, 24.05, -10), x_dir=(0, -1, 0), z_dir=(1, 0, 0)), Plane(origin=(12, 5, 40), x_dir=(0, 0, -1), z_dir=(-1, 0, 0)), Plane(origin=(47.5, 5, 40), x_dir=(0, 0, -1), z_dir=(-1, 0, 0))) as fillet1_piece_1:
        with BuildLine():
            CenterArc((FILLET1_R, -FILLET1_R), FILLET1_R, 90, 90)
            Line((0, -FILLET1_R), (0, 0))
            Line((0, 0), (FILLET1_R, 0))
        make_face()
    extrude(amount=59.5, mode=Mode.SUBTRACT)
    with BuildSketch(Plane(origin=(-47.5, 24.05, 40), x_dir=(0, -1, 0), z_dir=(1, 0, 0)), Plane(origin=(-12, 24.05, 40), x_dir=(0, -1, 0), z_dir=(1, 0, 0)), Plane(origin=(47.5, 24.05, -10), x_dir=(0, -1, 0), z_dir=(-1, 0, 0))) as fillet1_piece_2:
        with BuildLine():
            CenterArc((FILLET1_R, FILLET1_R), FILLET1_R, 180, 90)
            Line((0, FILLET1_R), (0, 0))
            Line((0, 0), (FILLET1_R, 0))
        make_face()
    extrude(amount=59.5, mode=Mode.SUBTRACT)
    with BuildSketch(Plane(origin=(52.5, 30, 10), x_dir=(-1, 0, 0), z_dir=(0, -1, 0)), Plane(origin=(52.5, 30, -10), x_dir=(0, 0, 1), z_dir=(0, -1, 0))) as fillet1_piece_3:
        with BuildLine():
            CenterArc((FILLET1_R, FILLET1_R), FILLET1_R, 180, 90)
            Line((0, FILLET1_R), (0, 0))
            Line((0, 0), (FILLET1_R, 0))
        make_face()
    extrude(amount=55, mode=Mode.SUBTRACT)
    with BuildSketch(Plane(origin=(-52.5, 30, 10), x_dir=(1, 0, 0), z_dir=(0, -1, 0)), Plane(origin=(-52.5, 30, -10), x_dir=(0, 0, 1), z_dir=(0, -1, 0))) as fillet1_piece_4:
        with BuildLine():
            CenterArc((FILLET1_R, -FILLET1_R), FILLET1_R, 90, 90)
            Line((0, -FILLET1_R), (0, 0))
            Line((0, 0), (FILLET1_R, 0))
        make_face()
    extrude(amount=55, mode=Mode.SUBTRACT)

    # Fillet2
    fillet2_edges = [part.edges().sort_by_distance(p)[0] for p in [
        (13, 5, 0),
        (-13, 5, 0),
        (22.5, 5, 0),
        (-22.5, 5, 0),
    ]]
    fillet(fillet2_edges, radius=FILLET2_R)


solid = part.part
